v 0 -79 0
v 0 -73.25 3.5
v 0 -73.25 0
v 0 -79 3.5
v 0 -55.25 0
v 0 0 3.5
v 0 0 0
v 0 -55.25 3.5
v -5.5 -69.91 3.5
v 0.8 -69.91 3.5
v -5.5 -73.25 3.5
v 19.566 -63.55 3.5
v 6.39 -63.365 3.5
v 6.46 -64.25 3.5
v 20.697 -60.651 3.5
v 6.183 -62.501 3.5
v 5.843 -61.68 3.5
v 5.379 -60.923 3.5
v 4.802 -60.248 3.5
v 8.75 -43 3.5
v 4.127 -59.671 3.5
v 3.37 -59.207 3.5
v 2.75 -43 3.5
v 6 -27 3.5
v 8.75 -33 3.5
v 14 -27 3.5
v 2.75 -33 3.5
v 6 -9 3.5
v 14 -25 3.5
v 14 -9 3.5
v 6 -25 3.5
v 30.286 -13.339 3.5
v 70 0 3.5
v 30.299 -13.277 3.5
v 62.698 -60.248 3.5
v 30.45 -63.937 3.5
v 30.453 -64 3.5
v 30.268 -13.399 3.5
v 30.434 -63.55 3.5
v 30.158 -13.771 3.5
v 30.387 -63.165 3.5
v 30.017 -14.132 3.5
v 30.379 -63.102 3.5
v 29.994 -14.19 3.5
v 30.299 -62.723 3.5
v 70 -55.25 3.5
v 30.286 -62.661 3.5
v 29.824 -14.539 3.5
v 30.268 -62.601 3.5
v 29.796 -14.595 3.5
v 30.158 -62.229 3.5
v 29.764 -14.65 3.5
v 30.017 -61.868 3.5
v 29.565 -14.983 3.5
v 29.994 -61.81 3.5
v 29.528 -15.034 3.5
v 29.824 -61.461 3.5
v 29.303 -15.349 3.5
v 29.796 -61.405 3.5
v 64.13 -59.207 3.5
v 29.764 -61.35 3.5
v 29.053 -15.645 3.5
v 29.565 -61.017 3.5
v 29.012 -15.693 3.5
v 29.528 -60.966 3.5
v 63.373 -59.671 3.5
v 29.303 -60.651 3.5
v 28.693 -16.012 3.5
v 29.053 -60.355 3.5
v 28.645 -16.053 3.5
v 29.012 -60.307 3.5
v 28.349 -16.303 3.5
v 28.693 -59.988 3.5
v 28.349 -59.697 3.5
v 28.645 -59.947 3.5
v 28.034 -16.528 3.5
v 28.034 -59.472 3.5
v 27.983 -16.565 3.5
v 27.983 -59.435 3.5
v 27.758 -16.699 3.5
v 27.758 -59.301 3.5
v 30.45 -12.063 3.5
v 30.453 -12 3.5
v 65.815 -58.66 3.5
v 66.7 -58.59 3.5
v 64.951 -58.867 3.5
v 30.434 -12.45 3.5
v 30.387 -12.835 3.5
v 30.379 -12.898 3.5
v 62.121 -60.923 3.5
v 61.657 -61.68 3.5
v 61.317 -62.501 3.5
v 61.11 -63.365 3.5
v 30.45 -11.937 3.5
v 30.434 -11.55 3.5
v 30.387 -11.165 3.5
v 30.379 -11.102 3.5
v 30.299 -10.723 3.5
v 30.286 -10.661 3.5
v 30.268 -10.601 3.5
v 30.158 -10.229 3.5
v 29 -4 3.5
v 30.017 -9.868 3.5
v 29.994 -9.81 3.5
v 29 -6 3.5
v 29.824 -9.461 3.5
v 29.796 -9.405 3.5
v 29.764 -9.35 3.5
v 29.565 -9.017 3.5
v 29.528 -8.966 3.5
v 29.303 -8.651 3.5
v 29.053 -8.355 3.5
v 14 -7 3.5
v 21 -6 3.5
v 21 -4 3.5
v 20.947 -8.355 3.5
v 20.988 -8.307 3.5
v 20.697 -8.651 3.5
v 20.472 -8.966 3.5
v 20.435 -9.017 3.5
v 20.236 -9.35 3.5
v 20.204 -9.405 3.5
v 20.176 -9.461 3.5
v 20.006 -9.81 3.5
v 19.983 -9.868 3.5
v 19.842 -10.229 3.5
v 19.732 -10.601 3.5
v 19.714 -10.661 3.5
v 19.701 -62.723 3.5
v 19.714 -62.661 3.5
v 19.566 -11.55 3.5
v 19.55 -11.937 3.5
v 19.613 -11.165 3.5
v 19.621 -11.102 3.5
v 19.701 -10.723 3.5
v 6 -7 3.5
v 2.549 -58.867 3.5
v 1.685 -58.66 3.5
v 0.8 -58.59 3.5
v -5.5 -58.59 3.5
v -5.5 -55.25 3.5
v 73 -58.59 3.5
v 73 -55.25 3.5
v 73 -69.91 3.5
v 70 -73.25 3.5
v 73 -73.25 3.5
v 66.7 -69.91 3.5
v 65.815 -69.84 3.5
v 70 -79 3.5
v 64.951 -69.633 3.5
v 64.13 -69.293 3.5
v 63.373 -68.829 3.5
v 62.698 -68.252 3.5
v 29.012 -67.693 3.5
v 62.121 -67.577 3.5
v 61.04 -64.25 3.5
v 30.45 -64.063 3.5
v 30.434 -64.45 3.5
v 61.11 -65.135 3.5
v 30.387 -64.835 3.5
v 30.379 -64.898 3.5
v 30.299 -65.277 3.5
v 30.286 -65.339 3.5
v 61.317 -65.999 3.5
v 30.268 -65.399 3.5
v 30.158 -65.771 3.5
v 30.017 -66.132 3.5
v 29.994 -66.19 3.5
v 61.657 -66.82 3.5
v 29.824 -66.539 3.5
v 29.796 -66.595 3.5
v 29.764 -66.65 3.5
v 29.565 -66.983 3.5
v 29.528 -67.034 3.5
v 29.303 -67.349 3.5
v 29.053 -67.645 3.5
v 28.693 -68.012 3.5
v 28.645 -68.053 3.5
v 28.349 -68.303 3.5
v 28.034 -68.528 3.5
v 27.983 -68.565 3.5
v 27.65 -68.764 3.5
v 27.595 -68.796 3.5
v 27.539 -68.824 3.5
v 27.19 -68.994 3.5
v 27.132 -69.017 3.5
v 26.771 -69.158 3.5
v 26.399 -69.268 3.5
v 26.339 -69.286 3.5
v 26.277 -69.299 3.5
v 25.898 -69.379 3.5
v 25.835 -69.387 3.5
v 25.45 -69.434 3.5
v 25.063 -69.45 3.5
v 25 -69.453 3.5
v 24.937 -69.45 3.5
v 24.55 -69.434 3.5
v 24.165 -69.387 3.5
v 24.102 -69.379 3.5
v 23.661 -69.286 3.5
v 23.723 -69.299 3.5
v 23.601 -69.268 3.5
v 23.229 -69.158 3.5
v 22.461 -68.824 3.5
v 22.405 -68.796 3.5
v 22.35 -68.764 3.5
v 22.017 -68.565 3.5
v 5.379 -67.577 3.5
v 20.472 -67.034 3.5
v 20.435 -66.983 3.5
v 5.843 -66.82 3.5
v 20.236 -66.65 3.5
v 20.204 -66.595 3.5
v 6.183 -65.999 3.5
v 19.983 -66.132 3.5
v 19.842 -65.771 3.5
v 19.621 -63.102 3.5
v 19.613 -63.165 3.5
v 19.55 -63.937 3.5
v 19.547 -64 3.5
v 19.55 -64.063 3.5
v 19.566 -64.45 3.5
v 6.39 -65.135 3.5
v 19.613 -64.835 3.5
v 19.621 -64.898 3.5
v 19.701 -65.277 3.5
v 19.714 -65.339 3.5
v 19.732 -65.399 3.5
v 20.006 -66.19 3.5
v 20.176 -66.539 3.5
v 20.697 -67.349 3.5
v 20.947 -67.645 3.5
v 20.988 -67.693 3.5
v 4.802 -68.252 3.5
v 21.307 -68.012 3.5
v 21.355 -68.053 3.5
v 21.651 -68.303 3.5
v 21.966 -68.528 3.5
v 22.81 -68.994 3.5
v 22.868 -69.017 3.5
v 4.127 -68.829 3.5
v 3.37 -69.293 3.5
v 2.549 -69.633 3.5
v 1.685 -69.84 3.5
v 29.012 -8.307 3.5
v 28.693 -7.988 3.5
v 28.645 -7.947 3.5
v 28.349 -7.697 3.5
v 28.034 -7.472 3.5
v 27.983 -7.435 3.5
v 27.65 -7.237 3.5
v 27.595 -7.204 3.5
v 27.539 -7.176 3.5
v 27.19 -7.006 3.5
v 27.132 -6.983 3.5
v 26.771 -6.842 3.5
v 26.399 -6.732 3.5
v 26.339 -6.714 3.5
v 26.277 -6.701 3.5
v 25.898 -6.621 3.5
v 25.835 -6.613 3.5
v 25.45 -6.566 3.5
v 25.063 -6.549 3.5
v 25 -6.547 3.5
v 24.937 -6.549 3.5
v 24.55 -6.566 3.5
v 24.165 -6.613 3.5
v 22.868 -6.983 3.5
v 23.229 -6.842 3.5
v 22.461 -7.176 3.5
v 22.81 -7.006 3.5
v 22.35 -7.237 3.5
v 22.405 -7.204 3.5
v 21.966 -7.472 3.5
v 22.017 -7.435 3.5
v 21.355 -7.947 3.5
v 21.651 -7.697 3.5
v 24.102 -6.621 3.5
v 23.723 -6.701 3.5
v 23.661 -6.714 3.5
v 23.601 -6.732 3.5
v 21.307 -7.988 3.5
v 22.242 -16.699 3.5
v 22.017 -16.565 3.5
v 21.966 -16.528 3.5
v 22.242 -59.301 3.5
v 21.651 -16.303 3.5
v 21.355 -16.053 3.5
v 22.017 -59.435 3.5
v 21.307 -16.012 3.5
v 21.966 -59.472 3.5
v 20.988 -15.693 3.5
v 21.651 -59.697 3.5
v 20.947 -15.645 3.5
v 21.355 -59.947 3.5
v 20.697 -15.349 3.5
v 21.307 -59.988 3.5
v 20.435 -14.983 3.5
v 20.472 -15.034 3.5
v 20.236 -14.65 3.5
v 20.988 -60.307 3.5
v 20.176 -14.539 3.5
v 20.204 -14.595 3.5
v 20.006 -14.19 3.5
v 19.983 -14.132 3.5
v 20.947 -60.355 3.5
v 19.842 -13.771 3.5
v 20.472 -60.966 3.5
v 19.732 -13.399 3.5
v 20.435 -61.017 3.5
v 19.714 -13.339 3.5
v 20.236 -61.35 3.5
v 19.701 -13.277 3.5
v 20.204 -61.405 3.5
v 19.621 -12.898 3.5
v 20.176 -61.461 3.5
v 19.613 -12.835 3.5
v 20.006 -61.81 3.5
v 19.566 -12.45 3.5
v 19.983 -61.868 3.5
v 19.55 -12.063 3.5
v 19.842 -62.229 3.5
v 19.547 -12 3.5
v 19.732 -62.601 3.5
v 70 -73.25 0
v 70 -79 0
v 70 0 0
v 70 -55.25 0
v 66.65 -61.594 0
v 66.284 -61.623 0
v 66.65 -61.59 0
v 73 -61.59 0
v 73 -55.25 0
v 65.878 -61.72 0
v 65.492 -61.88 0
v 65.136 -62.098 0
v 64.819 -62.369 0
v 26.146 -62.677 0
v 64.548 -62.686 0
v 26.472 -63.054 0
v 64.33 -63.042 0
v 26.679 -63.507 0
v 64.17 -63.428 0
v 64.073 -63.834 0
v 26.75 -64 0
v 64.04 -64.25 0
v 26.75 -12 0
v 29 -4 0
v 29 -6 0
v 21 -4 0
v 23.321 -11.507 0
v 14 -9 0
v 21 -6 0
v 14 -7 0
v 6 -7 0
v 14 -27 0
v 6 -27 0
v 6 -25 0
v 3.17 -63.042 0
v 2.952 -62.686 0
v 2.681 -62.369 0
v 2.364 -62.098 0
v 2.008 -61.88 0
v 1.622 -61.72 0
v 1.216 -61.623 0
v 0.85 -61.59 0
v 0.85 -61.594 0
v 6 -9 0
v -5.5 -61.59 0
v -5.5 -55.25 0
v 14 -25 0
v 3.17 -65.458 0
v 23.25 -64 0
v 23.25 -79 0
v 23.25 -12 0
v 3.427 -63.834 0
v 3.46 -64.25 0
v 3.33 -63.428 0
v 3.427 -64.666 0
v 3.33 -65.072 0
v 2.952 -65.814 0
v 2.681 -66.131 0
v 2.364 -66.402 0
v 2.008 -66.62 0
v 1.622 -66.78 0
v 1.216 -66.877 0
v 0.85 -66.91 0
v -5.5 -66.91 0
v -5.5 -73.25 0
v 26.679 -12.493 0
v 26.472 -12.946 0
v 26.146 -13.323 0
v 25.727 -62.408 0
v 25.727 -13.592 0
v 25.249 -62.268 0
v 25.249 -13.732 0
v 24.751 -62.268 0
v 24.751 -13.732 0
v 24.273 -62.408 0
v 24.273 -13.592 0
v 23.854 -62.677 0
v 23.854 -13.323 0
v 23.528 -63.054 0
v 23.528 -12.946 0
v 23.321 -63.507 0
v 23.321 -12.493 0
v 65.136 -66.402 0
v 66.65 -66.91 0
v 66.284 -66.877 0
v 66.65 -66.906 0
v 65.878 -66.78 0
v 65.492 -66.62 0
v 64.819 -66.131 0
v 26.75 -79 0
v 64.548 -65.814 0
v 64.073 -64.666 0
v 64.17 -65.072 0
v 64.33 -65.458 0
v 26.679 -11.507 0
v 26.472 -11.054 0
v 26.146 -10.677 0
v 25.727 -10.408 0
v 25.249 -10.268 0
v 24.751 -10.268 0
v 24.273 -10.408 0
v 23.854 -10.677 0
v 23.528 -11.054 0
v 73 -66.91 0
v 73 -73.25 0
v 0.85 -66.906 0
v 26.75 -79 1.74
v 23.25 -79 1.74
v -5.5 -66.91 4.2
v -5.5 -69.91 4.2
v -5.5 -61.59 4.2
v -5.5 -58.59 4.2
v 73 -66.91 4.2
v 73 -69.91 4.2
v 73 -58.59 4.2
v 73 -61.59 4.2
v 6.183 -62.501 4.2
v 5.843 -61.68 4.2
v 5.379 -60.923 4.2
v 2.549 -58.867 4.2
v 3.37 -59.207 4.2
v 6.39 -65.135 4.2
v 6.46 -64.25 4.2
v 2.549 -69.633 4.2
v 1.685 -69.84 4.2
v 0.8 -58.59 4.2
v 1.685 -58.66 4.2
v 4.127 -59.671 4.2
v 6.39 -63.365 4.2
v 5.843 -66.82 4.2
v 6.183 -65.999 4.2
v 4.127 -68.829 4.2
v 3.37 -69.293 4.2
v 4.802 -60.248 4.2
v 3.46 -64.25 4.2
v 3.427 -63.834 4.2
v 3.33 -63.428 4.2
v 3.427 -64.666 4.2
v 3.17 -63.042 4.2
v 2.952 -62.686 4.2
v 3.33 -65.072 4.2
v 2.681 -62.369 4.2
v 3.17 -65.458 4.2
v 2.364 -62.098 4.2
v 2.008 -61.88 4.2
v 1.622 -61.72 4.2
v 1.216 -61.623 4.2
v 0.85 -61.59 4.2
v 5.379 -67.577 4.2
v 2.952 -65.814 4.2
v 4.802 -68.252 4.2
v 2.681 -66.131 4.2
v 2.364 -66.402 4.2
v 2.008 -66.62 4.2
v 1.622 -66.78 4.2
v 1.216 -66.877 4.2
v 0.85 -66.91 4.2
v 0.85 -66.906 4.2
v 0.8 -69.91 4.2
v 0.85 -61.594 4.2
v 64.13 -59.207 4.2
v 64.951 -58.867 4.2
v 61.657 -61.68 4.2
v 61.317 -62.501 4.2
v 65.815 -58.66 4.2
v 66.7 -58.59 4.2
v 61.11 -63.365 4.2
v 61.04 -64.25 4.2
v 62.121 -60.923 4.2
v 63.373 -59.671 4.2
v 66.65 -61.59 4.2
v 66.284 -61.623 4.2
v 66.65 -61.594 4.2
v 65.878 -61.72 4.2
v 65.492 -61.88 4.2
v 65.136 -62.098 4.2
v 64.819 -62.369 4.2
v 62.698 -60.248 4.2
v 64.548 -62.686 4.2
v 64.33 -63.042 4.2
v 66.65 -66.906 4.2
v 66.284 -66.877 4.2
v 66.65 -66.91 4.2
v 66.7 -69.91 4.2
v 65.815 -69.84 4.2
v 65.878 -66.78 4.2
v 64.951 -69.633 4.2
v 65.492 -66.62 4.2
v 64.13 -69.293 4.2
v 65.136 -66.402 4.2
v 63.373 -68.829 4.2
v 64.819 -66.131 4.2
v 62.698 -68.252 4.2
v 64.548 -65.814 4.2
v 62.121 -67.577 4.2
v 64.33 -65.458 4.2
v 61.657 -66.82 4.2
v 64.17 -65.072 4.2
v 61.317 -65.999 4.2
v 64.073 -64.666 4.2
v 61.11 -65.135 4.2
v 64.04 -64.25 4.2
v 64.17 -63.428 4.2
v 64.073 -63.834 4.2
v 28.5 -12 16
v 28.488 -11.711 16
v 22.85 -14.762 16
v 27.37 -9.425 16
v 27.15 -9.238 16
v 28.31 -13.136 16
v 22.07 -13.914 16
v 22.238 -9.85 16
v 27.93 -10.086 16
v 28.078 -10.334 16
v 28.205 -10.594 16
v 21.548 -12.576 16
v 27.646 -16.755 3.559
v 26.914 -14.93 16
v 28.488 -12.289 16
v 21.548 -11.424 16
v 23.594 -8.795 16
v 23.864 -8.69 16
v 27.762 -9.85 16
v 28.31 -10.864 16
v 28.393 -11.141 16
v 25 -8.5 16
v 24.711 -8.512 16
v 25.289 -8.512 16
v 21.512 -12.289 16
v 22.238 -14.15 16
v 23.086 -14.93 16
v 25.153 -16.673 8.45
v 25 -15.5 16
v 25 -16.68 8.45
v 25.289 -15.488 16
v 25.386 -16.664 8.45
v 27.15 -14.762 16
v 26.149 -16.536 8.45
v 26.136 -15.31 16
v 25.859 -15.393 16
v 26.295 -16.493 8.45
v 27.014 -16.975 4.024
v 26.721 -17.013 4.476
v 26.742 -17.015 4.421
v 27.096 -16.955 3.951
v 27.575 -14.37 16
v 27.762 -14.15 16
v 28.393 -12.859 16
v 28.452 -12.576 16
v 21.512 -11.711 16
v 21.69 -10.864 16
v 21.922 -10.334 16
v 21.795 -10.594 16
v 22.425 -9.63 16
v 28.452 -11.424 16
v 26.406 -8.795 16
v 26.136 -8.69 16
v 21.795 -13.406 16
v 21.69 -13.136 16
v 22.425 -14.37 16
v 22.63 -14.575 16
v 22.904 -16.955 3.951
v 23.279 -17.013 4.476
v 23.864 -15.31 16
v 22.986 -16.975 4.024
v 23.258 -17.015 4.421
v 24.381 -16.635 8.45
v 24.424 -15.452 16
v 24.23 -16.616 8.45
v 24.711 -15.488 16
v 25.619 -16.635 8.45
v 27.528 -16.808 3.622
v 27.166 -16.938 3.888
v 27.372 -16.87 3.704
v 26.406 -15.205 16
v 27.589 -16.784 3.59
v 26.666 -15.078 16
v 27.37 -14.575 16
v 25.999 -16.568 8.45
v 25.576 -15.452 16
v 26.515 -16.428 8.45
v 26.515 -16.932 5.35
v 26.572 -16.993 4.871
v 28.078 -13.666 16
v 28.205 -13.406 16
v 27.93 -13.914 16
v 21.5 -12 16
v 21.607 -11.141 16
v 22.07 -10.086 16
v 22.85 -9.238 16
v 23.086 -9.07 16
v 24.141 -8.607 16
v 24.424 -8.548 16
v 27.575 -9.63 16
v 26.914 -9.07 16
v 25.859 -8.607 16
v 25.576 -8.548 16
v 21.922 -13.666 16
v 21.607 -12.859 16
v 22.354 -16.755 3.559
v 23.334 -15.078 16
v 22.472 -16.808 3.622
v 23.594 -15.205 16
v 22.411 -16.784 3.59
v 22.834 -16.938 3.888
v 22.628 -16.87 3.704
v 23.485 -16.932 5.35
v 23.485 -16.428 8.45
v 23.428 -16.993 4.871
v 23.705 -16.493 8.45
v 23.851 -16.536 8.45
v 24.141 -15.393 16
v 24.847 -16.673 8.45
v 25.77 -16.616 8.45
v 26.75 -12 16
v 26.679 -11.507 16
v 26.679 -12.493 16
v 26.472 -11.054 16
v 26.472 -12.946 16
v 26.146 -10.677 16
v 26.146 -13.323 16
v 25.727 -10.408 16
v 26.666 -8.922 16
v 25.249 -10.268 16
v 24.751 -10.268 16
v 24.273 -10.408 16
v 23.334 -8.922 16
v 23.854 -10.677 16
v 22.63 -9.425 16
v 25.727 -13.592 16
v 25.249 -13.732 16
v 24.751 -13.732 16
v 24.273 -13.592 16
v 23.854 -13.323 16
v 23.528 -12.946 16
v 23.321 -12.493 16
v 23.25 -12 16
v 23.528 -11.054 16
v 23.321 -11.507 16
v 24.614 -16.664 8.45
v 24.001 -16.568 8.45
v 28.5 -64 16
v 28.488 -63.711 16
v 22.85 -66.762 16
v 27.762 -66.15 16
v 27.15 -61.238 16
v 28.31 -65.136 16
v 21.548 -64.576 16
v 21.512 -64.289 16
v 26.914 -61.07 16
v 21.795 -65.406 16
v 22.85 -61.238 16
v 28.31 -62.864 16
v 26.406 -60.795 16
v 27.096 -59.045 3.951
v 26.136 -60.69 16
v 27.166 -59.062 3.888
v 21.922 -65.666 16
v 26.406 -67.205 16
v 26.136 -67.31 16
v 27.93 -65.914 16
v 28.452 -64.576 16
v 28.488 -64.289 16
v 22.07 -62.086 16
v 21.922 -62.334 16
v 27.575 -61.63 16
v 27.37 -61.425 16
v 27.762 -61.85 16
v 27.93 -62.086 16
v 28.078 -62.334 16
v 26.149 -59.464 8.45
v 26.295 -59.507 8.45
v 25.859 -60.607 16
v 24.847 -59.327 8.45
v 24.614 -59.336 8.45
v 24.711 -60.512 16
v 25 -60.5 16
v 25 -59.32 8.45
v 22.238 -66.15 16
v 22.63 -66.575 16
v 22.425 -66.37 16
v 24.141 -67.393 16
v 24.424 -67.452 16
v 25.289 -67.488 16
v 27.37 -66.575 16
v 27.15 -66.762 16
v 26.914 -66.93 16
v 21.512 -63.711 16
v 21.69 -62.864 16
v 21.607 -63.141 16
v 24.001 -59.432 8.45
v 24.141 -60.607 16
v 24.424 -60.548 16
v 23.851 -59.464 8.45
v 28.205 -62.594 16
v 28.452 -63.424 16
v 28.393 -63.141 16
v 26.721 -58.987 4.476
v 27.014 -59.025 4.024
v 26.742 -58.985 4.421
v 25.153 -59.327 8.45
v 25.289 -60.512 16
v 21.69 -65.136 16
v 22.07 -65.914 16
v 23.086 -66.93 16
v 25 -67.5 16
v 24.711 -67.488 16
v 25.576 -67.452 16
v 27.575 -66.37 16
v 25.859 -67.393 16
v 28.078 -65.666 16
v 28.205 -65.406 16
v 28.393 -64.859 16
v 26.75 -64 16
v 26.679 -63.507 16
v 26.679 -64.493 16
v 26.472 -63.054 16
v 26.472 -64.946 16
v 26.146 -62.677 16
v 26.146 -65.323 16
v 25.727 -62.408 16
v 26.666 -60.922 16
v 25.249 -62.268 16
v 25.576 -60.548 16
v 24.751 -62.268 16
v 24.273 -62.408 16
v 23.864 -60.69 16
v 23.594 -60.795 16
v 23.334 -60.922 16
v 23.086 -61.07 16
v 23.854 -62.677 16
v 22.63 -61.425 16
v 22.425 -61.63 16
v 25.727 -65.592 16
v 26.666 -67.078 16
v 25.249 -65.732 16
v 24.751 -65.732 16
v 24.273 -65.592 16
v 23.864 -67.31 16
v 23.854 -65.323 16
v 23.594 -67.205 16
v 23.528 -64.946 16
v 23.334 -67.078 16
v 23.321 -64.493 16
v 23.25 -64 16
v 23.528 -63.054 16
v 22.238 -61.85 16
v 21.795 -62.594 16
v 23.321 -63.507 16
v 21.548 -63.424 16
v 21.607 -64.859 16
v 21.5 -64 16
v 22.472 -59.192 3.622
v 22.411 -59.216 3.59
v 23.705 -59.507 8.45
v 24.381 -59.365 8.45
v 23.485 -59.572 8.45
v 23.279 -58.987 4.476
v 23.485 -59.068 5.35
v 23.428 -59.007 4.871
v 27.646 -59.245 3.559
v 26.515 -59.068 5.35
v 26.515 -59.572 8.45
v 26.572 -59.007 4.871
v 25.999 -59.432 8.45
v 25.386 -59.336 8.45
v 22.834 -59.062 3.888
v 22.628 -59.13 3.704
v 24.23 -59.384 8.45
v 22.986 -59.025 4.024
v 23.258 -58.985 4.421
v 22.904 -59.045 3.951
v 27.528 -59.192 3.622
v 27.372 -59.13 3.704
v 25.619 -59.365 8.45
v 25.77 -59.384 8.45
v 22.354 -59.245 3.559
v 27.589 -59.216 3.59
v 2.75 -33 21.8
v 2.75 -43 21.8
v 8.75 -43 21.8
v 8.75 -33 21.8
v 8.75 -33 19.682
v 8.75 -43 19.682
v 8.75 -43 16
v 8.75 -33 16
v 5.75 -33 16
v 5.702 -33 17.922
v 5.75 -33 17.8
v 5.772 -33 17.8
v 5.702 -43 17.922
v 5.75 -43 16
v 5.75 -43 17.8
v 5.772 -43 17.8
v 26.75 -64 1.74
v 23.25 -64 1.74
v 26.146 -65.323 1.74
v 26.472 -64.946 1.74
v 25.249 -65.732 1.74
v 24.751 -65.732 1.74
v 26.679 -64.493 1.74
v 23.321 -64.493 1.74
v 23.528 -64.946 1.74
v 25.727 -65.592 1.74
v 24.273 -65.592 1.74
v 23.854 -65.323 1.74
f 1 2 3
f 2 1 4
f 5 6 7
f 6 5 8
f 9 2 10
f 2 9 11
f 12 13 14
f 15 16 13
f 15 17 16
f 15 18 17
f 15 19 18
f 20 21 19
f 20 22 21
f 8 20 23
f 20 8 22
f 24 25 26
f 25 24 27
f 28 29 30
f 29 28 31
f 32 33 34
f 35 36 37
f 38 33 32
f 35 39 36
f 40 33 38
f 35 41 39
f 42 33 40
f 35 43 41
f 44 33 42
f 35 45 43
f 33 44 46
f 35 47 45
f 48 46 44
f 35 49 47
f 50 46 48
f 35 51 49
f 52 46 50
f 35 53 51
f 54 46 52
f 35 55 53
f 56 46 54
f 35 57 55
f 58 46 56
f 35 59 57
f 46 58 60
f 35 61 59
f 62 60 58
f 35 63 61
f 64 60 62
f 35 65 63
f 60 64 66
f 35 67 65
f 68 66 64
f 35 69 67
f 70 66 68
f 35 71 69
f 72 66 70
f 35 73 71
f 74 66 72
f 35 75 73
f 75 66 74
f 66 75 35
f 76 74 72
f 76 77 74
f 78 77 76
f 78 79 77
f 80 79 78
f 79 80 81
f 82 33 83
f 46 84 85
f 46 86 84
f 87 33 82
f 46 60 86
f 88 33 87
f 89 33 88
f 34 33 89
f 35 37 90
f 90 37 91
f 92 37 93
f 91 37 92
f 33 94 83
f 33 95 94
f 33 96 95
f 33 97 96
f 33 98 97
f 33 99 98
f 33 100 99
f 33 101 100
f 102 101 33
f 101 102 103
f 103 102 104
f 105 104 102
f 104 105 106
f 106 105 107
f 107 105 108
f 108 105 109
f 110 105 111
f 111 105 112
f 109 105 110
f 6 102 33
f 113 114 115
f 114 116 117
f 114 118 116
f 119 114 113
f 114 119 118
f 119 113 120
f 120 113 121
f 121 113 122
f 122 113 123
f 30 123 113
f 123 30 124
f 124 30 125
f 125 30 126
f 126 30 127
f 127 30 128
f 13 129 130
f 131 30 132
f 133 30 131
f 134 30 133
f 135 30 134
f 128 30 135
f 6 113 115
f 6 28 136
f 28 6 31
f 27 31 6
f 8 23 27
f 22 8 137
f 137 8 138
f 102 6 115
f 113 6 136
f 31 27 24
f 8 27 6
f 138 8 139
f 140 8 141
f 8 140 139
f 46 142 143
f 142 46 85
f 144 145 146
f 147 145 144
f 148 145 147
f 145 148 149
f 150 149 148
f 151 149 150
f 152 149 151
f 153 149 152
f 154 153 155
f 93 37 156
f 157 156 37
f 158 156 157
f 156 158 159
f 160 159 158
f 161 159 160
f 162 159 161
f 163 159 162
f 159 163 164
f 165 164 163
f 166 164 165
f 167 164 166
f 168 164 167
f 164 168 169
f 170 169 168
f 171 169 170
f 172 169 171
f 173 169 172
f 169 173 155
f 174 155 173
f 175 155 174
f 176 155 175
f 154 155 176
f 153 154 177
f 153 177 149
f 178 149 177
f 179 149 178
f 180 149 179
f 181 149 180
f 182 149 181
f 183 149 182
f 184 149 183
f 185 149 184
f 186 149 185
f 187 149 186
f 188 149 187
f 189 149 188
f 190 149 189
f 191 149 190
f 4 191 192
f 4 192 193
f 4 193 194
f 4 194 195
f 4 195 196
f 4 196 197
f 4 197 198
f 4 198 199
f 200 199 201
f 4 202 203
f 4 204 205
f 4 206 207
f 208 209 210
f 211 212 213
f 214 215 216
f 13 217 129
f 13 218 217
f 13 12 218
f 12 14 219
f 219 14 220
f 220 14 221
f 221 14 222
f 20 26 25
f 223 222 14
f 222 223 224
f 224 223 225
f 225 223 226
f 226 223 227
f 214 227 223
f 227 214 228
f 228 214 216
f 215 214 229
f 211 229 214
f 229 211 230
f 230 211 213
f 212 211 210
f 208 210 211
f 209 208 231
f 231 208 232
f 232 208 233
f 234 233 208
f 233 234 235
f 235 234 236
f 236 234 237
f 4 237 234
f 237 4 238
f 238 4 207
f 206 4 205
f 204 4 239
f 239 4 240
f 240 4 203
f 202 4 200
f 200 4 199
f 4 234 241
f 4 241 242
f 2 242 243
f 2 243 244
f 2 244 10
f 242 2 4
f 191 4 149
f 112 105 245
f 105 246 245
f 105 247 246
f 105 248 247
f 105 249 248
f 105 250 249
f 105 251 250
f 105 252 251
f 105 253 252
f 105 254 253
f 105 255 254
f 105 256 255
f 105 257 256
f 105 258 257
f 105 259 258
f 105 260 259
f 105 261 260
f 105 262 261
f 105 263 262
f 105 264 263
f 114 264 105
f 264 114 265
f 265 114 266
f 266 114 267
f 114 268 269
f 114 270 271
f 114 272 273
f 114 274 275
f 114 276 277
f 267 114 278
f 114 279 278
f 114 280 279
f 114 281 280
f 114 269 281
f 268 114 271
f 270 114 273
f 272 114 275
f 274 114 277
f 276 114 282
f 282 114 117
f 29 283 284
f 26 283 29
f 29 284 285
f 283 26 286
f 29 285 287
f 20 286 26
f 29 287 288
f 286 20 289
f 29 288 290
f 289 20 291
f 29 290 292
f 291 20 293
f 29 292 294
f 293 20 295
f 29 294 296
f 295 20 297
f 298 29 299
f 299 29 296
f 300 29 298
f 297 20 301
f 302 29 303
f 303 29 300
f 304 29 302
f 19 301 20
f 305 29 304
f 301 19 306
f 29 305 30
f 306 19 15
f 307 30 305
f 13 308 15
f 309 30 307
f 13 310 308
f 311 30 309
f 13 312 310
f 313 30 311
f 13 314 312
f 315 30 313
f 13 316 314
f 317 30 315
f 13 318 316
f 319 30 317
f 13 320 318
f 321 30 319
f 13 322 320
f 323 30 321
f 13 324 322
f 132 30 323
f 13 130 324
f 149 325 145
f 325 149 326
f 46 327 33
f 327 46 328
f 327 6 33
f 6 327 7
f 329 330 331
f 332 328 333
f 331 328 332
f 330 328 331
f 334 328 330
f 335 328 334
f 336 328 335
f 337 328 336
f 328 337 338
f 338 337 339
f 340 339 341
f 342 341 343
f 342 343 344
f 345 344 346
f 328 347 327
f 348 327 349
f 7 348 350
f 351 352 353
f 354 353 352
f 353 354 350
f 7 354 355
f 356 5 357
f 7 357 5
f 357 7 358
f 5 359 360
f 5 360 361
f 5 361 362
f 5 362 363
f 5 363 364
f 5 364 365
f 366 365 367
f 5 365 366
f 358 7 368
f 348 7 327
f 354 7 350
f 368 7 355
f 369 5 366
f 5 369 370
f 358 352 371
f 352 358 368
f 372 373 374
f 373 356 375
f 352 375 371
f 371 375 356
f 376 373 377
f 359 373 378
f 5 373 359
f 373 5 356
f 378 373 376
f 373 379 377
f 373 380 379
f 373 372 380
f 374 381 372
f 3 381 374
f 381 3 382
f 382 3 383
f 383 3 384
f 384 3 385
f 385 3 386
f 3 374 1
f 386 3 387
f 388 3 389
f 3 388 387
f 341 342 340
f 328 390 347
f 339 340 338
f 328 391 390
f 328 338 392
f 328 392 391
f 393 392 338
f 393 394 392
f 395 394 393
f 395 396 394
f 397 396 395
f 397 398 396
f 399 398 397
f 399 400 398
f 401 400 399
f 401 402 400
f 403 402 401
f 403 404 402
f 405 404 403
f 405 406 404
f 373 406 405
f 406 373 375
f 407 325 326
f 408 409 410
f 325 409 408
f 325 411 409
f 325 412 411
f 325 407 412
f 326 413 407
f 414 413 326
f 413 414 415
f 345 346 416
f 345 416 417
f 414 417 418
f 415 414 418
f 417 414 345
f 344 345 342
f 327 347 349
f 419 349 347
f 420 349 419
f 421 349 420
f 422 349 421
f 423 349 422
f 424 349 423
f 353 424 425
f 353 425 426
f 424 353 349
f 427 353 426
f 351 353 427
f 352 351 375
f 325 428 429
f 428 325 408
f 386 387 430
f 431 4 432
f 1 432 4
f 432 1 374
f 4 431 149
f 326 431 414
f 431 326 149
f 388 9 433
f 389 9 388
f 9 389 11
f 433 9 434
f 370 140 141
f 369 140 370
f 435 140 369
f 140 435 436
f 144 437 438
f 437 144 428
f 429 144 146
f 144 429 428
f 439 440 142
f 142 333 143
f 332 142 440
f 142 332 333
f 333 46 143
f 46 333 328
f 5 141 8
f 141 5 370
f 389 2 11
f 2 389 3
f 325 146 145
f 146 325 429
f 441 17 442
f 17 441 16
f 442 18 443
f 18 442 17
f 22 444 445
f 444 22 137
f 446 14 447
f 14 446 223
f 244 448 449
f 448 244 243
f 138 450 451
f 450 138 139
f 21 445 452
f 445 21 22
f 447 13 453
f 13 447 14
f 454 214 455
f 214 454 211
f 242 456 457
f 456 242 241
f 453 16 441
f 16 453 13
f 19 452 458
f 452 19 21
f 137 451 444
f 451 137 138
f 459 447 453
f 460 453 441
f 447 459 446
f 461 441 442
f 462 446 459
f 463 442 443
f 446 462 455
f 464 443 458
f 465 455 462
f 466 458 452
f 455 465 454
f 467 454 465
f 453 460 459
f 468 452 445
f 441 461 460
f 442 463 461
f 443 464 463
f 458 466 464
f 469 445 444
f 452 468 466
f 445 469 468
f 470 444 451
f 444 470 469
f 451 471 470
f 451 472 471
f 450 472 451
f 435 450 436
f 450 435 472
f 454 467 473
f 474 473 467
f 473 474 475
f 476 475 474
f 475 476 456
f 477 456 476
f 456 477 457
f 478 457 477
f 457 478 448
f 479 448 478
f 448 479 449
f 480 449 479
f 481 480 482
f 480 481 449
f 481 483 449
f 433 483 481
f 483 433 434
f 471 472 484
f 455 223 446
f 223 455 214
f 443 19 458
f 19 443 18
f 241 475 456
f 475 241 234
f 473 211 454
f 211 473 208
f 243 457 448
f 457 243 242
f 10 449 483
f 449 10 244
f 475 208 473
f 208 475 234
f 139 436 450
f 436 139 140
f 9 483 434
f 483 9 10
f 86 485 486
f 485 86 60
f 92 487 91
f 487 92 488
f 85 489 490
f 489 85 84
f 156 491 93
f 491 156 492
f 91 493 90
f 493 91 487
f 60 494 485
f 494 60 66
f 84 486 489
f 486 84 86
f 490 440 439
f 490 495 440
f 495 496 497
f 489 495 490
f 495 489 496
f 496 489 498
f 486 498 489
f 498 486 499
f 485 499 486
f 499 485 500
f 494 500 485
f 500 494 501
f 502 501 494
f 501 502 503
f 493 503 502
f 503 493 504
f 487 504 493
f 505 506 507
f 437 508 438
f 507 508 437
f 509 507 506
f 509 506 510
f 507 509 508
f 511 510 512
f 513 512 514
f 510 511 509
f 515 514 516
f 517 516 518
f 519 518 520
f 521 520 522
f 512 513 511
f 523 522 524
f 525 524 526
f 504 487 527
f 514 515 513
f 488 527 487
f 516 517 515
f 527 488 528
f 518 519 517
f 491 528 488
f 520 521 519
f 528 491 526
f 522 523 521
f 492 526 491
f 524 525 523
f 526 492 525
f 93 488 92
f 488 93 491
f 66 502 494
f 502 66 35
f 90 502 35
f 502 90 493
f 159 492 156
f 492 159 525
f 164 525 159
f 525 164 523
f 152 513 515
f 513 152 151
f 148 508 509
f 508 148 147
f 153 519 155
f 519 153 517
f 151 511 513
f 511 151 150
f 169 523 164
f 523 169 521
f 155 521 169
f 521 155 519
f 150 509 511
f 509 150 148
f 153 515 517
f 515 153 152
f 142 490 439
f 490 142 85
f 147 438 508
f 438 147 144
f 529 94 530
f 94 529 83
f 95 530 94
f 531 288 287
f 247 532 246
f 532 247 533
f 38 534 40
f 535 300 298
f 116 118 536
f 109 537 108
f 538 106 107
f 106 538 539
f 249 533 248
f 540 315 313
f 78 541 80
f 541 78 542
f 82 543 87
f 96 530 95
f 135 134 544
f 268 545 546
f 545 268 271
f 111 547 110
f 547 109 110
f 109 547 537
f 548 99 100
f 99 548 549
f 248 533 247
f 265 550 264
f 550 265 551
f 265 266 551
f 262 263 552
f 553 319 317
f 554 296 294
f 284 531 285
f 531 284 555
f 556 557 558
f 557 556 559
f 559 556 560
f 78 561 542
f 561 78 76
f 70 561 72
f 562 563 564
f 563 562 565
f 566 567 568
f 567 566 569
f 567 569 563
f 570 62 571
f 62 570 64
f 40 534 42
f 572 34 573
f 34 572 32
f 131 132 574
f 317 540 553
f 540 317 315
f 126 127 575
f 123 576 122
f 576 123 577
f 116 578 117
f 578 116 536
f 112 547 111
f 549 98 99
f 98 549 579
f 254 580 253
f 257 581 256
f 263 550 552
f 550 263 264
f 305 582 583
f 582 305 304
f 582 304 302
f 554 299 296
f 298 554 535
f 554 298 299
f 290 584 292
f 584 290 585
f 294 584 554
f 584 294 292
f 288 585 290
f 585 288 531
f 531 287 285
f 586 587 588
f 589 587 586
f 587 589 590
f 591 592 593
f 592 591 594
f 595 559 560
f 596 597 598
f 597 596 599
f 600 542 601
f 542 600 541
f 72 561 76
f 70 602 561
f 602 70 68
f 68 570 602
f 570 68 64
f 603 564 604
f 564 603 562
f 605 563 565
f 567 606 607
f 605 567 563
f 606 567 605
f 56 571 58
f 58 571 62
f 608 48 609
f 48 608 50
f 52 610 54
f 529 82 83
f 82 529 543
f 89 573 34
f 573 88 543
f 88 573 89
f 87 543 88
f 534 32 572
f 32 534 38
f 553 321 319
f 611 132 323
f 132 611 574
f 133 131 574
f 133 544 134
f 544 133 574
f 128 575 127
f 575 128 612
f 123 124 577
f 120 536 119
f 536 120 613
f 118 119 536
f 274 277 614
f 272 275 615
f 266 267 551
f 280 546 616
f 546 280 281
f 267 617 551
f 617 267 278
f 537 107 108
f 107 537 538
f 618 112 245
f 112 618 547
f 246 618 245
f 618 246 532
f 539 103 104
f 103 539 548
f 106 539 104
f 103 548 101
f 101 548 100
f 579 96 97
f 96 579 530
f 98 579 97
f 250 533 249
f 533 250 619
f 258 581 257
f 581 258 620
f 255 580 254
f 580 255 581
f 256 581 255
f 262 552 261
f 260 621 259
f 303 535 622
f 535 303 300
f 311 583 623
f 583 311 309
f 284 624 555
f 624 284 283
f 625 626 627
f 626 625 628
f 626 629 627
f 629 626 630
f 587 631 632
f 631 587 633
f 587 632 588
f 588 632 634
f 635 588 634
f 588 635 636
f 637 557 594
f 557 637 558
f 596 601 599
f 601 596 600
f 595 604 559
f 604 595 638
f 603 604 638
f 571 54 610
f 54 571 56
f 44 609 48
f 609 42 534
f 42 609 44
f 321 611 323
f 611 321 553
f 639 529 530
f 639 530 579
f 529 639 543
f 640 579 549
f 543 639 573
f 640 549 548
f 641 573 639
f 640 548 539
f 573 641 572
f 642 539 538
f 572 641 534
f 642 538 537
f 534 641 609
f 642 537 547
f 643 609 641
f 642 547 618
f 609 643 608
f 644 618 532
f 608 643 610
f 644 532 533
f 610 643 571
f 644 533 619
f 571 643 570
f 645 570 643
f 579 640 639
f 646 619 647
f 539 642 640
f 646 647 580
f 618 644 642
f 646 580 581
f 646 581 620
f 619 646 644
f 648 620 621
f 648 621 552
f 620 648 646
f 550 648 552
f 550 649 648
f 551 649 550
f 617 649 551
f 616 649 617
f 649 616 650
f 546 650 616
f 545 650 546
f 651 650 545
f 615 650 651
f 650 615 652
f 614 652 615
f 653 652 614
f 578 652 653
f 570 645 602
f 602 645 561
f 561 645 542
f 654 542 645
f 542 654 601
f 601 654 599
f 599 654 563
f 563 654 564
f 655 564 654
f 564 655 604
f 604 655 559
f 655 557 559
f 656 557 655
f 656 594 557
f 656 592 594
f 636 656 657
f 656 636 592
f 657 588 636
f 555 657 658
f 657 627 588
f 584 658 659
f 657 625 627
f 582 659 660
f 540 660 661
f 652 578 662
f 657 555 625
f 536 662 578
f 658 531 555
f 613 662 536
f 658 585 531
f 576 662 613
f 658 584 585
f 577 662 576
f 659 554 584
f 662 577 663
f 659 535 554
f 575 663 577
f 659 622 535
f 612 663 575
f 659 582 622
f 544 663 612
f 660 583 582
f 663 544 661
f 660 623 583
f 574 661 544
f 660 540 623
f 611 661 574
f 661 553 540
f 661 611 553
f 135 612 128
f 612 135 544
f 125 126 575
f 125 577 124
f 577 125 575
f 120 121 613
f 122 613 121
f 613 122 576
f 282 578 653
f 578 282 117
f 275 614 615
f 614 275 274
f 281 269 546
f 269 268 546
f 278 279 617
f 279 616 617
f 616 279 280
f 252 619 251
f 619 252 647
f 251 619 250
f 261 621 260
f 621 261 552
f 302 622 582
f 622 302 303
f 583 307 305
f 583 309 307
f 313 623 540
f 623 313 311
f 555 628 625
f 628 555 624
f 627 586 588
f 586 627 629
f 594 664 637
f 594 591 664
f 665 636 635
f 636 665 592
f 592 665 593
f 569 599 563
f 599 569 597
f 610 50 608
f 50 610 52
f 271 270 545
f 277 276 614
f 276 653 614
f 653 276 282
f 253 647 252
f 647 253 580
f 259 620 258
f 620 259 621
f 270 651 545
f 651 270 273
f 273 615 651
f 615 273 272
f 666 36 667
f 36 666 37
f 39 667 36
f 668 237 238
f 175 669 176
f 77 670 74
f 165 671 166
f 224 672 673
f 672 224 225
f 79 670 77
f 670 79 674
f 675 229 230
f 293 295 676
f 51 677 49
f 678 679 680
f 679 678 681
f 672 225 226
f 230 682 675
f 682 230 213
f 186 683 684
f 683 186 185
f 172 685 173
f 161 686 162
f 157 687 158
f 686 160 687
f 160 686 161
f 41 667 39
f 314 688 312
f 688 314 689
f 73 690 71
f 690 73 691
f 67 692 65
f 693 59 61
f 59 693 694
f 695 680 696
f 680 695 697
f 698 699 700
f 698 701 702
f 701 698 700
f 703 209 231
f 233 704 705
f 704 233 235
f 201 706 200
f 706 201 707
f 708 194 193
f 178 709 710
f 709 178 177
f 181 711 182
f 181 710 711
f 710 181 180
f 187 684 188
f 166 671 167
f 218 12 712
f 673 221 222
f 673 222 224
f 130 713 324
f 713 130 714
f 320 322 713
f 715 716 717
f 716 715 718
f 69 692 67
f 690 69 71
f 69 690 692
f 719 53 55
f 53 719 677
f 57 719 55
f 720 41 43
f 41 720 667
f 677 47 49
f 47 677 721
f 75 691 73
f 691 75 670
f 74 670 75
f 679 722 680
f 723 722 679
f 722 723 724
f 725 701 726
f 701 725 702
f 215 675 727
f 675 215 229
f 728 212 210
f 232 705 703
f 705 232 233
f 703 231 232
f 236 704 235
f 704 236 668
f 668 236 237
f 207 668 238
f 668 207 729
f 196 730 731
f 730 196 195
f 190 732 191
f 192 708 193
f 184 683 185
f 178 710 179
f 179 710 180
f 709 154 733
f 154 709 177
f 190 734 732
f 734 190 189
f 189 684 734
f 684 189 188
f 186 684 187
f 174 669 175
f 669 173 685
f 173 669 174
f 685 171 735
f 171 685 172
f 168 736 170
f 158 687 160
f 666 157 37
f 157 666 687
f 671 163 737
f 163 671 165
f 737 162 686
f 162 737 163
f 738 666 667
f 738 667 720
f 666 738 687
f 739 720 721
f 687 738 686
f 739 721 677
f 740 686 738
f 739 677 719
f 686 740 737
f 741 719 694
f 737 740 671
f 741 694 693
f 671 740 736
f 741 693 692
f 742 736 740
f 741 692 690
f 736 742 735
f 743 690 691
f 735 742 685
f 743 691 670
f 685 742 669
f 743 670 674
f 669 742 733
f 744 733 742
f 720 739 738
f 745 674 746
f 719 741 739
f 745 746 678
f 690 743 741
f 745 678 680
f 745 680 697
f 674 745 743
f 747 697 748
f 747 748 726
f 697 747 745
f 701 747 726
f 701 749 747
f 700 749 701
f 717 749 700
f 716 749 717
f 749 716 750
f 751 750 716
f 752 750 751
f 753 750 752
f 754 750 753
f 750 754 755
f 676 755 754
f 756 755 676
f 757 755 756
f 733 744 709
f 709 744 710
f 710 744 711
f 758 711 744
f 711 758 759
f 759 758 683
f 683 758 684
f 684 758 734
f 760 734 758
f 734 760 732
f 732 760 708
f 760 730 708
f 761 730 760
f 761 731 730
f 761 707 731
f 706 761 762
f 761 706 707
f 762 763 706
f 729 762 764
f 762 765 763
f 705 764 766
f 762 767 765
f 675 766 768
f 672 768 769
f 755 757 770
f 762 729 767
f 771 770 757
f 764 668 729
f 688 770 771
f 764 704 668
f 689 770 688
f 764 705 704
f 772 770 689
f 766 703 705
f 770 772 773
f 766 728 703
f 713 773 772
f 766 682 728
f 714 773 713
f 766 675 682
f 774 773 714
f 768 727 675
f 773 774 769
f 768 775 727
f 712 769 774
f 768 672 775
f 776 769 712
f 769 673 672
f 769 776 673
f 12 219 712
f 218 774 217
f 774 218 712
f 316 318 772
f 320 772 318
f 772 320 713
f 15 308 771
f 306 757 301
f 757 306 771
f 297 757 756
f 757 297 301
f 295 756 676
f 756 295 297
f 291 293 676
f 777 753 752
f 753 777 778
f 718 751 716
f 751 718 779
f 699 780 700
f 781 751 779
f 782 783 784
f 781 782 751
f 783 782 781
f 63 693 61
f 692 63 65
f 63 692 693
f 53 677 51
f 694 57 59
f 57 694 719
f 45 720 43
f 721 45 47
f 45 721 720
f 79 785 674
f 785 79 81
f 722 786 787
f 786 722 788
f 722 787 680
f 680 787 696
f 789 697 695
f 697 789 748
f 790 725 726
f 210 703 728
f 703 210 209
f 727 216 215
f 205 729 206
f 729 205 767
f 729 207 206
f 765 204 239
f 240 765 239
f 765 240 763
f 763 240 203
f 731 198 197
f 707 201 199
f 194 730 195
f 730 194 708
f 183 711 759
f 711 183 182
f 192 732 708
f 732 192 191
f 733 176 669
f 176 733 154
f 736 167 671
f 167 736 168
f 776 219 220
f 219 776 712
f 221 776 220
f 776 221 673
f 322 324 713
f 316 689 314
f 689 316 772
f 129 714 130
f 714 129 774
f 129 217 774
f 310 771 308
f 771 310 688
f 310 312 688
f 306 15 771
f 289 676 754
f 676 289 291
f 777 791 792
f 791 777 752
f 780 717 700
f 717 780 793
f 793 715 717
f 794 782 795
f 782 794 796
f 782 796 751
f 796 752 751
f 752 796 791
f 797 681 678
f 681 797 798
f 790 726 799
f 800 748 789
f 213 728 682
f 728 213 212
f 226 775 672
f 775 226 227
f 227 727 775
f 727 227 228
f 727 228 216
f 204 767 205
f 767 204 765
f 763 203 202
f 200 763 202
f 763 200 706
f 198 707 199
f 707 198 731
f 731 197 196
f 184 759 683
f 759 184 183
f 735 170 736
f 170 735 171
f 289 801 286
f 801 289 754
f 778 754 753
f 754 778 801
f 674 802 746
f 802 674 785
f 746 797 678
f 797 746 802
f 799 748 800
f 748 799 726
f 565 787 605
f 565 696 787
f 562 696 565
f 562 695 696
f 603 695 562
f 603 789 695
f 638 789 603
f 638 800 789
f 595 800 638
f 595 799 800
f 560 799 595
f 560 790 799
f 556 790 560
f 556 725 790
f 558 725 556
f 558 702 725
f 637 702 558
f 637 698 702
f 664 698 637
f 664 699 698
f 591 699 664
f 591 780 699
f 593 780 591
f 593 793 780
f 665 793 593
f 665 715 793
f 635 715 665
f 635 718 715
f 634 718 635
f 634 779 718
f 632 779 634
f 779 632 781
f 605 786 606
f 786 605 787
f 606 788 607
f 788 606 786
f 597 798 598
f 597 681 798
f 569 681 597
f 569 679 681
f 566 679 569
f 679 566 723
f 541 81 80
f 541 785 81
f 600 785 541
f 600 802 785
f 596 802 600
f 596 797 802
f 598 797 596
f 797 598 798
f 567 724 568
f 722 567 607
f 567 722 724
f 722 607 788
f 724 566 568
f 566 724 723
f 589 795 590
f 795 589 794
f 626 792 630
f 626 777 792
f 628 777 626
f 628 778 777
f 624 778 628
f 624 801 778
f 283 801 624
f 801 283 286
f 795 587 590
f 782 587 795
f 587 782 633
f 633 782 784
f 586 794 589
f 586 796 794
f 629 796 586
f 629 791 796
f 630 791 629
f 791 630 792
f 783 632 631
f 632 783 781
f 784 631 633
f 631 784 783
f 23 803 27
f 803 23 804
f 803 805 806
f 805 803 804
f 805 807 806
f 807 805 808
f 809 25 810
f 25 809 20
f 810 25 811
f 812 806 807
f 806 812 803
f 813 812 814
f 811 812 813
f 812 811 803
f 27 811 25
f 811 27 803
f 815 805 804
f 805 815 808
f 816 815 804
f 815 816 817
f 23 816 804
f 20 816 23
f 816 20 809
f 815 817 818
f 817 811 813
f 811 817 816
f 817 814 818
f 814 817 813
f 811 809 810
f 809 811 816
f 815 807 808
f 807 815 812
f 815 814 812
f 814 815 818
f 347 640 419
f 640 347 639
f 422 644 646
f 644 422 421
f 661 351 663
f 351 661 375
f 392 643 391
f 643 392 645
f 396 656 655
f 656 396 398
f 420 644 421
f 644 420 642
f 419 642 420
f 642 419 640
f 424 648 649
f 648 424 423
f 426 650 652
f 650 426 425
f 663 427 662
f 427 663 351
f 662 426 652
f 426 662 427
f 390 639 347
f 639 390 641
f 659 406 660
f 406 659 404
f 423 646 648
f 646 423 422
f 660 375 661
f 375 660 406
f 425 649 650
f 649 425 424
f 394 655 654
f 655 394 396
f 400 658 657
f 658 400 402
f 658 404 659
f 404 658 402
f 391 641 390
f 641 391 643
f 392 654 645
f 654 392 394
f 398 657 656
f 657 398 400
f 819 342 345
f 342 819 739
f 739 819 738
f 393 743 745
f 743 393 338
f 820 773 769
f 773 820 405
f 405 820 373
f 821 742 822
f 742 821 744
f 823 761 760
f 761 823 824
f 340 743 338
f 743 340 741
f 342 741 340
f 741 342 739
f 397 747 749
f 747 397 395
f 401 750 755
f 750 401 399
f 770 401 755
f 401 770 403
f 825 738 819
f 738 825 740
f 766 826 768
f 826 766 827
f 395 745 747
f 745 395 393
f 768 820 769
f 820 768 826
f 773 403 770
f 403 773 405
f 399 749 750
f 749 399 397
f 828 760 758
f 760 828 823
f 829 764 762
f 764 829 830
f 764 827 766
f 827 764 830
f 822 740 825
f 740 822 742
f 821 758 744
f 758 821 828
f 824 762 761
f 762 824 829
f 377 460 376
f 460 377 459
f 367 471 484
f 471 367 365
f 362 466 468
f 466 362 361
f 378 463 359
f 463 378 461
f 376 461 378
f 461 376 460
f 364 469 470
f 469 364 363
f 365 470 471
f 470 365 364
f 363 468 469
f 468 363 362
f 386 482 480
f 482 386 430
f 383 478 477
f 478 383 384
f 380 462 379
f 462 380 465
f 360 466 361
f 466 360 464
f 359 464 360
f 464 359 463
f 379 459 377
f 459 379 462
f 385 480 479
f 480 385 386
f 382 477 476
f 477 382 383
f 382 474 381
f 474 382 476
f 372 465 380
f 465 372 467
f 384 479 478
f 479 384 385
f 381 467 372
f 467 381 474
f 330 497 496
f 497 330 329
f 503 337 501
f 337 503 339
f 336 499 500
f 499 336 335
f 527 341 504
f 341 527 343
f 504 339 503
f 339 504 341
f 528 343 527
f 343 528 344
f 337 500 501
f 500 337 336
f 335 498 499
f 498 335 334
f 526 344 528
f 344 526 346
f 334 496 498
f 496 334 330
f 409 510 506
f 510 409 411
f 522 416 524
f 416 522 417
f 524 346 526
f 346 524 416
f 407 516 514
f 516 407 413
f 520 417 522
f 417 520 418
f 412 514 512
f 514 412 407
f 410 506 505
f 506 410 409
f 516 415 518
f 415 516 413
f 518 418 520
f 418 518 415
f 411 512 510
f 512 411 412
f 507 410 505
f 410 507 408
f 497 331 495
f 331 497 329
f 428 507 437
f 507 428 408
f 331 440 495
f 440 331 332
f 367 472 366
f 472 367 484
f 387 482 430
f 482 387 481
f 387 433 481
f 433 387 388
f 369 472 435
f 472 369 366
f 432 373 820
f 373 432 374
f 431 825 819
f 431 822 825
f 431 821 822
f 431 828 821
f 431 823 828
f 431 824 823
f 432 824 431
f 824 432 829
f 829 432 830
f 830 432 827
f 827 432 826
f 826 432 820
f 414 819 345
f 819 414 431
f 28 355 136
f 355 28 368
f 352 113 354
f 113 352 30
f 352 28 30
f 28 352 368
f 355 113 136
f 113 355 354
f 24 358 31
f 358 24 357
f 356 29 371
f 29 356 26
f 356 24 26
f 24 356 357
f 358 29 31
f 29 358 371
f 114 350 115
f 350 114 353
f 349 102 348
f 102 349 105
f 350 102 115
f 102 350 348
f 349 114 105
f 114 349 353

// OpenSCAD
//translate([0,-12,0])import("../stl/pica-mount.stl");
plate_thick=3.5;
plate_l=70;
plate_w=79;
post_h=16;
cut_out_r=2.66;
holder_y=38;
holder_x=19.25;
holder_w=10;
pcb_t=1.8;
$fa=.5;
$fs=.5;
module base_plate()
{
    translate([plate_l/2,-plate_w/2,plate_thick/2])cube([plate_l,plate_w,plate_thick],center=true);
    translate([plate_l/2-1.25,-64.25,plate_thick/2])cube([plate_l+8.5,18,plate_thick],center=true);
    //ridge
    translate([.8,-64.25,0])cylinder(r=cut_out_r+3,h=plate_thick+.7,$fn=40);
    translate([.8-3.15,-64.25,.5*(plate_thick+.7)])cube([6.3,cut_out_r*2+6,plate_thick+.7],center=true);
    translate([plate_l-(0.15+3.15),-64.25,0])cylinder(r=cut_out_r+3,h=plate_thick+.7,$fn=40);
    translate([plate_l-(0.15),-64.25,.5*(plate_thick+.7)])cube([6.3,cut_out_r*2+6,plate_thick+.7],center=true);
    
}
module screw_cut()
{
    translate([.8,-64.25,-1])cylinder(r=cut_out_r,h=3+plate_thick+.7,$fn=40);
    translate([plate_l-(0.15+3.15),-64.25,-1])cylinder(r=cut_out_r,h=3+plate_thick+.7,$fn=40);
    translate([plate_l-(0.15),-64.25,.5*(plate_thick+.7)-1])cube([6.3+.1,cut_out_r*2,3+plate_thick+.7],center=true);
    translate([.8-3.15,-64.25,.5*(plate_thick+.7)-1])cube([6.3+.1,cut_out_r*2,3+plate_thick+.7],center=true);
    //posts
    rr=3.5/2;
    translate([20-20,0,0])
    {
    translate([25,-12,-1])cylinder(r=rr,h=post_h+2);
    translate([25,-12-52,-1])cylinder(r=rr,h=post_h+2);
    }
    translate([25,-64-10,plate_thick/4-.01])translate()cube([rr*2,20,plate_thick/2],center=true);
}
module mount_post()
{
    rr1=6;
    rr2=3.5;
    translate([20,0,0])
    {
    translate([25,-12,0])cylinder(r1=rr1,r2=rr2,h=post_h);
    translate([25,-12-52,0])cylinder(r1=rr1,r2=rr2,h=post_h);
    }
}
module tie_cut()
{
    translate([10-20,7,0])
    {
    translate([20,-15,0])cube([8,2,20],center=true);
    translate([20,-33,0])cube([8,2,20],center=true);
    }
    translate([25,-5,0])cube([8,2,20],center=true);
    //translate([25,-71,0])cube([8,2,20],center=true);
}
module wigglestop()
{
    hh=post_h+pcb_t+4;
    xx=25-holder_x;
    translate([xx,-holder_y,hh/2])difference()
    {
        cube([6,holder_w,hh],center=true);
        translate([3,0,pcb_t/2-hh/2+post_h])cube([6,holder_w*2,pcb_t],center=true);
        translate([3,0,6/sqrt(2)-2.5])translate([0,0,pcb_t/2-hh/2+post_h])rotate([0,-30,0])cube([6,holder_w*2,pcb_t],center=true);
        translate([2+3-.25,0,6/sqrt(2)-1.9])translate([0,0,pcb_t/2-hh/2+post_h])rotate([0,-30,0])cube([6,holder_w*2,pcb_t],center=true);
    }
}
module final()
{
    difference()
    {
        union()
        {
            base_plate();
            translate([-20,0,0])
            {
            mount_post();
            translate([55,-73.5,plate_thick-.05])scale([1,.75,1])rotate([0,0,90])spine();
            }
            wigglestop();
        }
        screw_cut();
        tie_cut();
    }
}
final();
module spine()
{
    translate([10,0,0])
    {
    difference()
    {
        cube([71,20,5]);
        translate([0,-13.5,2-.1])spine_cut();
        translate([0,13.5,2-.1])spine_cut(); 
    }
}
}
module spine_cut()
{
    minkowski()
    {
        cube([100,20,5]);
        sphere(r=2);
    }
}
//spine();
